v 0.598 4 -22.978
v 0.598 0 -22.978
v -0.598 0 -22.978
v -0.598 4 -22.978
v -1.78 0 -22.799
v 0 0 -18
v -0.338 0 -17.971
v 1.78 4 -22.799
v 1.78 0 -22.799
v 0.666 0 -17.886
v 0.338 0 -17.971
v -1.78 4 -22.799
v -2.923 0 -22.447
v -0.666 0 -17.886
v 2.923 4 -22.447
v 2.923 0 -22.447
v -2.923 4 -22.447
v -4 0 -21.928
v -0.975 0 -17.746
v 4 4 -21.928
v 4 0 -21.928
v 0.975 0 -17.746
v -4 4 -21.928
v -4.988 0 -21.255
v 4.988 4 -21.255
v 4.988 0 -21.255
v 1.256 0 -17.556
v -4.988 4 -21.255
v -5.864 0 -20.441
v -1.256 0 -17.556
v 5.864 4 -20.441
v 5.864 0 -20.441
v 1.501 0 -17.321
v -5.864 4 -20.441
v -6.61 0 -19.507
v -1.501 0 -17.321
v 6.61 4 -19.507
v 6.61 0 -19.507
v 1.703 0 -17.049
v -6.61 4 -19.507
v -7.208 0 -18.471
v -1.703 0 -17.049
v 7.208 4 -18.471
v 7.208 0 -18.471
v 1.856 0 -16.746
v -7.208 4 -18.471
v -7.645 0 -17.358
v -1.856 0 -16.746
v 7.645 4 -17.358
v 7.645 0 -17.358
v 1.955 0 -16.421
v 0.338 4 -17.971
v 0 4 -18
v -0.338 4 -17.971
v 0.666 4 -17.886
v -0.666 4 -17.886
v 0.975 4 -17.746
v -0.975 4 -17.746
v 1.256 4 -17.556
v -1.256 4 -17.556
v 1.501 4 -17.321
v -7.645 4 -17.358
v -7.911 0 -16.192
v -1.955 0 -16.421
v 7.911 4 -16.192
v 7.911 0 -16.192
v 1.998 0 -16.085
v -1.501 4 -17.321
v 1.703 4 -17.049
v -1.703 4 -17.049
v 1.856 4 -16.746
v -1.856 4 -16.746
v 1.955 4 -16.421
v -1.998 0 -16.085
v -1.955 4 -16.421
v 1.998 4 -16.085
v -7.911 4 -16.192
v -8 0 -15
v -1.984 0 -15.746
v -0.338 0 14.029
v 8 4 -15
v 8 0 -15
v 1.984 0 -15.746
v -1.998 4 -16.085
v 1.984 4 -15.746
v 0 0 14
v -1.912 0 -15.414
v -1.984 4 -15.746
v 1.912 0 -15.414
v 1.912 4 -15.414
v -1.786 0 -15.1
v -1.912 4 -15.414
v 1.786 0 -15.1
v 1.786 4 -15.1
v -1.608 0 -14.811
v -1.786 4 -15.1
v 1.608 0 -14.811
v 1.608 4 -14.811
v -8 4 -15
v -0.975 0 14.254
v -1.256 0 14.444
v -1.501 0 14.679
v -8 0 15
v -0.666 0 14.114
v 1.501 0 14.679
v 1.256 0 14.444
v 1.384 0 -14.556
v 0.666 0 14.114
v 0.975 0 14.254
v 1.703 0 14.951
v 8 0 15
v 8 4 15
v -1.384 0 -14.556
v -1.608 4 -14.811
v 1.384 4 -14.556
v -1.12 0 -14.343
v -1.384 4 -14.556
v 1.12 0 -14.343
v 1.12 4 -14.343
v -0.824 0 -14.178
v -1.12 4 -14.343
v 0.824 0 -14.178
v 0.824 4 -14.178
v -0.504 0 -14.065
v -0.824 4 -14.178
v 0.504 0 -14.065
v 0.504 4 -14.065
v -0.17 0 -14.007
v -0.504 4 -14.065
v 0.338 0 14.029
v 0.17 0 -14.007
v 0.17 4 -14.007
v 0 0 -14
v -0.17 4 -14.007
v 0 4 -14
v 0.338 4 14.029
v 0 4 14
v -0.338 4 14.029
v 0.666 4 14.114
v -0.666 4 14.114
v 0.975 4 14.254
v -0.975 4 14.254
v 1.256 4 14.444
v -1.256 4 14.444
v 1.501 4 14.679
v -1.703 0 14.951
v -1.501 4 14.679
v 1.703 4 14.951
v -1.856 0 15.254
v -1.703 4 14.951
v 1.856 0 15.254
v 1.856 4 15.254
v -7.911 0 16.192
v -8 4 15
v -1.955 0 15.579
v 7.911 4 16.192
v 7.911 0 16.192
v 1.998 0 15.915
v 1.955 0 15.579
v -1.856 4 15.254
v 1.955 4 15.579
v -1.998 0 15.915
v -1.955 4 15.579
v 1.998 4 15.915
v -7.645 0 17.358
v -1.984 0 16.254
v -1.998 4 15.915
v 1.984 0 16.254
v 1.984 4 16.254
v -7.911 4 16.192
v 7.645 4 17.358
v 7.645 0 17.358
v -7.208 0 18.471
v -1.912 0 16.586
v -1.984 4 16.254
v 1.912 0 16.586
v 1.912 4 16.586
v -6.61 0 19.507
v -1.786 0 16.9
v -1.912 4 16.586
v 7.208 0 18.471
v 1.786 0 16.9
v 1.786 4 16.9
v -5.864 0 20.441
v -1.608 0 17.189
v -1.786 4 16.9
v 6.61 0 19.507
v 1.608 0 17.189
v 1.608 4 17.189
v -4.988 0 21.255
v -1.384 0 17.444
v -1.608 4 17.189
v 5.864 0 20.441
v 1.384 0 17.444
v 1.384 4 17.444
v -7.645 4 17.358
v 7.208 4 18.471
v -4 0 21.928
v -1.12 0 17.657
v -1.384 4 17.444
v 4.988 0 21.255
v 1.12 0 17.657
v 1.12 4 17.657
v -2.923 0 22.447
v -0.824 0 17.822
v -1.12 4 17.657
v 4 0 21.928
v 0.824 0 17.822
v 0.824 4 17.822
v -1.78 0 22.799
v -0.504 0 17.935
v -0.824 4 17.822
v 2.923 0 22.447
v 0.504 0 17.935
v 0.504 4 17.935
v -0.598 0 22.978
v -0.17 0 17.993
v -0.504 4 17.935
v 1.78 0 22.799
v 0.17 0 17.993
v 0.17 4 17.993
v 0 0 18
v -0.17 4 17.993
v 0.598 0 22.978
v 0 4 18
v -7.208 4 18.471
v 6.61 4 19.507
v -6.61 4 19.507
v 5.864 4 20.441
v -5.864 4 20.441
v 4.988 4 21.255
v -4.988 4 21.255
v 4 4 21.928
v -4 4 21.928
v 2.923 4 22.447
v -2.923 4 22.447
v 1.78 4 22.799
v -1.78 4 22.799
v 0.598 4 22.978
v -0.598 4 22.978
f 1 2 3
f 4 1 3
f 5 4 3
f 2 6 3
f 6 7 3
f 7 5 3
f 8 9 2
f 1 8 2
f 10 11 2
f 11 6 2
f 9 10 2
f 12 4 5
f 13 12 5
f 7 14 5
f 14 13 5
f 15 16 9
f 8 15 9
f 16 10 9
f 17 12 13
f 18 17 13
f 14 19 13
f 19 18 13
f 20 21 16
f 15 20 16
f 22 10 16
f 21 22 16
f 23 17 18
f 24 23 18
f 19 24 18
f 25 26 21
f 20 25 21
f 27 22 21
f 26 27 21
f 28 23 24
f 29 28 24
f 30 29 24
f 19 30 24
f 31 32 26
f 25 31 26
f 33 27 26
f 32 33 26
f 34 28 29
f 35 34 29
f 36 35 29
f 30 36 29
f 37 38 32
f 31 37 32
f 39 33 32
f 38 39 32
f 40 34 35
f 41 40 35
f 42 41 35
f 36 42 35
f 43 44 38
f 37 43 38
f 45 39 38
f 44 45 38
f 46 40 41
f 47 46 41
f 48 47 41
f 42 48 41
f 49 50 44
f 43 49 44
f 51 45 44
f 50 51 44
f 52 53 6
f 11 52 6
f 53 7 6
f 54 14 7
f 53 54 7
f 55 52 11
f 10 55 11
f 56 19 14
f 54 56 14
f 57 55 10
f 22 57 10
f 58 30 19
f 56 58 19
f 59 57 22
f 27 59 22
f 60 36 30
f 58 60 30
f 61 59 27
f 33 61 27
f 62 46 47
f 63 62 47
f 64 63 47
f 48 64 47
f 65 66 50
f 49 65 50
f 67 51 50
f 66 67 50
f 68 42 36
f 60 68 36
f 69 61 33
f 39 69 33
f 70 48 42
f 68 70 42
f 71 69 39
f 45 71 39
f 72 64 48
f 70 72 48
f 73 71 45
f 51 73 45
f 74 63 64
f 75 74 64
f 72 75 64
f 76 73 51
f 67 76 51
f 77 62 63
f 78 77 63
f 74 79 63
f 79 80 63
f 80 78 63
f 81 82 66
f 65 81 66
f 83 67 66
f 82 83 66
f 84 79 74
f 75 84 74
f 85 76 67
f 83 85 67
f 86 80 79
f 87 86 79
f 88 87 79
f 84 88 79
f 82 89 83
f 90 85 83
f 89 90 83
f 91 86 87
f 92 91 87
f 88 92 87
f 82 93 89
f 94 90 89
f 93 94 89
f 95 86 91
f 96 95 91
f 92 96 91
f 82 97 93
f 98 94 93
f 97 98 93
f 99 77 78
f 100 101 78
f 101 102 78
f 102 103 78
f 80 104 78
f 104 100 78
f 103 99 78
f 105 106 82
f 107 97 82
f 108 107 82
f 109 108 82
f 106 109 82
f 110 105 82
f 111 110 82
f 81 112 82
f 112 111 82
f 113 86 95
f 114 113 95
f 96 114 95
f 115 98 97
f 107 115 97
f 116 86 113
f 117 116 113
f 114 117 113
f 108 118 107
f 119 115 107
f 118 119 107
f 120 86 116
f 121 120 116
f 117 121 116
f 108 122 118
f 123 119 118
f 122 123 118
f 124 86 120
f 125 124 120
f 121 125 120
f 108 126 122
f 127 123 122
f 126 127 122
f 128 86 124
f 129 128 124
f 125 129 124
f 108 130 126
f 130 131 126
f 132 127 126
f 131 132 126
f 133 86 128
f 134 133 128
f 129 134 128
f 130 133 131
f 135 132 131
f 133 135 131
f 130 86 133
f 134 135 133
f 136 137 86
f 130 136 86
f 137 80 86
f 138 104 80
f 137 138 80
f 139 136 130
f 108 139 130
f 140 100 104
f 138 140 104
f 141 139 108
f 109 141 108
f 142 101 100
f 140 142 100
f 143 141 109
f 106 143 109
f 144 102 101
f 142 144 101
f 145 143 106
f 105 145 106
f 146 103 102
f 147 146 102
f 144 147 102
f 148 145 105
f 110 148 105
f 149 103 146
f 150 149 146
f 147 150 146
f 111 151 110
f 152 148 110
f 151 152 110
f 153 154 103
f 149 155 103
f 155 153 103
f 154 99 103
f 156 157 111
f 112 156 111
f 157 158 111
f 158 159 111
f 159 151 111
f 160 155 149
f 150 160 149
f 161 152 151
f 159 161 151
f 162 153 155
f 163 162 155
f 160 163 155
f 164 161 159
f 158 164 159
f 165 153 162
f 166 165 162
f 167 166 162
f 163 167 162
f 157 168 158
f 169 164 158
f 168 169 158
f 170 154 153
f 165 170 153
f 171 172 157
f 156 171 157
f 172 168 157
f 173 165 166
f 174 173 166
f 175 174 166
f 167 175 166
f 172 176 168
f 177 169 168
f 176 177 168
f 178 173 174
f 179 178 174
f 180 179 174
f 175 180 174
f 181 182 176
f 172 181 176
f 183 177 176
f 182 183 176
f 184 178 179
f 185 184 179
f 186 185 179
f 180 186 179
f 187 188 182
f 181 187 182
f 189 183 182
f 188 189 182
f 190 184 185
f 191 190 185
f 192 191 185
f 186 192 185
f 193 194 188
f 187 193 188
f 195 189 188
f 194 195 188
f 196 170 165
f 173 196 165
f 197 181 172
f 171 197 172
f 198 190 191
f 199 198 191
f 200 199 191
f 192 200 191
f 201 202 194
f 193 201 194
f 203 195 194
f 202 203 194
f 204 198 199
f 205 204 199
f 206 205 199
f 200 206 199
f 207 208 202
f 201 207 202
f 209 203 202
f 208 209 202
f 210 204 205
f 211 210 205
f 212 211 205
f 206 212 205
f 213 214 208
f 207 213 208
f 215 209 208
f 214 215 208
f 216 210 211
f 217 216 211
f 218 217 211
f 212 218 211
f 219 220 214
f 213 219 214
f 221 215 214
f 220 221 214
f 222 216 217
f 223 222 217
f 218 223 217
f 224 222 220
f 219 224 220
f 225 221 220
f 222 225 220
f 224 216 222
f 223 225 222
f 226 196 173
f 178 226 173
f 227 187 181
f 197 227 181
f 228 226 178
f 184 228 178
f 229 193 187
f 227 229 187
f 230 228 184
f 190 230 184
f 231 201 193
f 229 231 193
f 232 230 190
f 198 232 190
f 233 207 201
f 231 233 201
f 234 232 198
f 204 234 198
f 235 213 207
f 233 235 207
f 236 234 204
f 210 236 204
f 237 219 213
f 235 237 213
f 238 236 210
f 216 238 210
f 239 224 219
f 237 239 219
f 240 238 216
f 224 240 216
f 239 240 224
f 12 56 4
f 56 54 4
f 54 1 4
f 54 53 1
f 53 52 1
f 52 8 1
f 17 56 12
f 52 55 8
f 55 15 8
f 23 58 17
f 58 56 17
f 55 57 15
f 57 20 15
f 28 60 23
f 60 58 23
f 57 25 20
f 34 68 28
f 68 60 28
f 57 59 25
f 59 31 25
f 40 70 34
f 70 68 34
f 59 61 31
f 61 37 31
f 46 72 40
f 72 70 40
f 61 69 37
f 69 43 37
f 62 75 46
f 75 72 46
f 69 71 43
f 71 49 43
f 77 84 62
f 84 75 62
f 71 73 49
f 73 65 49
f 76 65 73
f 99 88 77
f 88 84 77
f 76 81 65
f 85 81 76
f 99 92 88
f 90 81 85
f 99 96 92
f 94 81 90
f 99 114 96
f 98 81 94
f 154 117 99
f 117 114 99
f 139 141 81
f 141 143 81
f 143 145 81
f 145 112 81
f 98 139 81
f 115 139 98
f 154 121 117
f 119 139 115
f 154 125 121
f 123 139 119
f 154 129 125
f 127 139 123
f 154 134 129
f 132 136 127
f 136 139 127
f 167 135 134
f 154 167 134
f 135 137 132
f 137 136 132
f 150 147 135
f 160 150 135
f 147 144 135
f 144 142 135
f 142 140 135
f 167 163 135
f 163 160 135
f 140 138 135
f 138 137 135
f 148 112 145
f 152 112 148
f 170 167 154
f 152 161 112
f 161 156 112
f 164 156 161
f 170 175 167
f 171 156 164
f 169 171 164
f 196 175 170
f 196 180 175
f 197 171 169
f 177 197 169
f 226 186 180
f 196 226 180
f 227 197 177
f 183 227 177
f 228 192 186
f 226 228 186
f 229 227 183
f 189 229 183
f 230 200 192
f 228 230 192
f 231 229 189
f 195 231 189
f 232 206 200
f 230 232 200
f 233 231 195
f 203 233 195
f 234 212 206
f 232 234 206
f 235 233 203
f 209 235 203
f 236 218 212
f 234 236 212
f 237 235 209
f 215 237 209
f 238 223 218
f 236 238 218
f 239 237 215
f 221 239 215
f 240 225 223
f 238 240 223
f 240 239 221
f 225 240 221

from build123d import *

# Parameters (mm, degrees)
SKETCH1_W           = 16
SKETCH1_H           = 46
SKETCH1_R           = 2
BOSS_EXTRUDE1_DEPTH = 4
FILLET1_RADIUS      = 8
FILLET1_LENGTH      = 4
FILLET2_RADIUS      = 8
FILLET2_LENGTH      = 4


with BuildPart() as part:
    # Sketch1 → Boss-Extrude1 (new body)
    with BuildSketch(Plane(origin=(0, 0, 0), x_dir=(1, 0, 0), z_dir=(0, 1, 0))):
        Rectangle(SKETCH1_W, SKETCH1_H)
        with Locations(Location((0, -16, 0), (0, 0, 270))):
            Circle(SKETCH1_R, mode=Mode.SUBTRACT)
        with Locations(Location((0, 16, 0), (0, 0, 270))):
            Circle(SKETCH1_R, mode=Mode.SUBTRACT)
    extrude(amount=BOSS_EXTRUDE1_DEPTH)

    # Fillet1: full round fillet: the end face becomes a half cylinder, R = half its width
    fillet1_face = Plane((0, 2, 23), x_dir=(0, 1, 0), z_dir=(0, 0, 1))  # on the end face: x along it, z out of the body
    fillet1_slab = fillet1_face.offset(-FILLET1_RADIUS / 2) * Box(FILLET1_LENGTH, 2 * FILLET1_RADIUS, FILLET1_RADIUS, mode=Mode.PRIVATE)  # the body's end, R deep
    fillet1_round = Plane((0, 2, 15), x_dir=(0, 0, 1), z_dir=(0, 1, 0)) * Cylinder(FILLET1_RADIUS, FILLET1_LENGTH, mode=Mode.PRIVATE)  # its axis R under the face
    add(fillet1_slab - fillet1_round, mode=Mode.SUBTRACT)

    # Fillet2: full round fillet: the end face becomes a half cylinder, R = half its width
    fillet2_face = Plane((0, 2, -23), x_dir=(0, 1, 0), z_dir=(0, 0, -1))  # on the end face: x along it, z out of the body
    fillet2_slab = fillet2_face.offset(-FILLET2_RADIUS / 2) * Box(FILLET2_LENGTH, 2 * FILLET2_RADIUS, FILLET2_RADIUS, mode=Mode.PRIVATE)  # the body's end, R deep
    fillet2_round = Plane((0, 2, -15), x_dir=(0, 0, -1), z_dir=(0, 1, 0)) * Cylinder(FILLET2_RADIUS, FILLET2_LENGTH, mode=Mode.PRIVATE)  # its axis R under the face
    add(fillet2_slab - fillet2_round, mode=Mode.SUBTRACT)


solid = part.part
